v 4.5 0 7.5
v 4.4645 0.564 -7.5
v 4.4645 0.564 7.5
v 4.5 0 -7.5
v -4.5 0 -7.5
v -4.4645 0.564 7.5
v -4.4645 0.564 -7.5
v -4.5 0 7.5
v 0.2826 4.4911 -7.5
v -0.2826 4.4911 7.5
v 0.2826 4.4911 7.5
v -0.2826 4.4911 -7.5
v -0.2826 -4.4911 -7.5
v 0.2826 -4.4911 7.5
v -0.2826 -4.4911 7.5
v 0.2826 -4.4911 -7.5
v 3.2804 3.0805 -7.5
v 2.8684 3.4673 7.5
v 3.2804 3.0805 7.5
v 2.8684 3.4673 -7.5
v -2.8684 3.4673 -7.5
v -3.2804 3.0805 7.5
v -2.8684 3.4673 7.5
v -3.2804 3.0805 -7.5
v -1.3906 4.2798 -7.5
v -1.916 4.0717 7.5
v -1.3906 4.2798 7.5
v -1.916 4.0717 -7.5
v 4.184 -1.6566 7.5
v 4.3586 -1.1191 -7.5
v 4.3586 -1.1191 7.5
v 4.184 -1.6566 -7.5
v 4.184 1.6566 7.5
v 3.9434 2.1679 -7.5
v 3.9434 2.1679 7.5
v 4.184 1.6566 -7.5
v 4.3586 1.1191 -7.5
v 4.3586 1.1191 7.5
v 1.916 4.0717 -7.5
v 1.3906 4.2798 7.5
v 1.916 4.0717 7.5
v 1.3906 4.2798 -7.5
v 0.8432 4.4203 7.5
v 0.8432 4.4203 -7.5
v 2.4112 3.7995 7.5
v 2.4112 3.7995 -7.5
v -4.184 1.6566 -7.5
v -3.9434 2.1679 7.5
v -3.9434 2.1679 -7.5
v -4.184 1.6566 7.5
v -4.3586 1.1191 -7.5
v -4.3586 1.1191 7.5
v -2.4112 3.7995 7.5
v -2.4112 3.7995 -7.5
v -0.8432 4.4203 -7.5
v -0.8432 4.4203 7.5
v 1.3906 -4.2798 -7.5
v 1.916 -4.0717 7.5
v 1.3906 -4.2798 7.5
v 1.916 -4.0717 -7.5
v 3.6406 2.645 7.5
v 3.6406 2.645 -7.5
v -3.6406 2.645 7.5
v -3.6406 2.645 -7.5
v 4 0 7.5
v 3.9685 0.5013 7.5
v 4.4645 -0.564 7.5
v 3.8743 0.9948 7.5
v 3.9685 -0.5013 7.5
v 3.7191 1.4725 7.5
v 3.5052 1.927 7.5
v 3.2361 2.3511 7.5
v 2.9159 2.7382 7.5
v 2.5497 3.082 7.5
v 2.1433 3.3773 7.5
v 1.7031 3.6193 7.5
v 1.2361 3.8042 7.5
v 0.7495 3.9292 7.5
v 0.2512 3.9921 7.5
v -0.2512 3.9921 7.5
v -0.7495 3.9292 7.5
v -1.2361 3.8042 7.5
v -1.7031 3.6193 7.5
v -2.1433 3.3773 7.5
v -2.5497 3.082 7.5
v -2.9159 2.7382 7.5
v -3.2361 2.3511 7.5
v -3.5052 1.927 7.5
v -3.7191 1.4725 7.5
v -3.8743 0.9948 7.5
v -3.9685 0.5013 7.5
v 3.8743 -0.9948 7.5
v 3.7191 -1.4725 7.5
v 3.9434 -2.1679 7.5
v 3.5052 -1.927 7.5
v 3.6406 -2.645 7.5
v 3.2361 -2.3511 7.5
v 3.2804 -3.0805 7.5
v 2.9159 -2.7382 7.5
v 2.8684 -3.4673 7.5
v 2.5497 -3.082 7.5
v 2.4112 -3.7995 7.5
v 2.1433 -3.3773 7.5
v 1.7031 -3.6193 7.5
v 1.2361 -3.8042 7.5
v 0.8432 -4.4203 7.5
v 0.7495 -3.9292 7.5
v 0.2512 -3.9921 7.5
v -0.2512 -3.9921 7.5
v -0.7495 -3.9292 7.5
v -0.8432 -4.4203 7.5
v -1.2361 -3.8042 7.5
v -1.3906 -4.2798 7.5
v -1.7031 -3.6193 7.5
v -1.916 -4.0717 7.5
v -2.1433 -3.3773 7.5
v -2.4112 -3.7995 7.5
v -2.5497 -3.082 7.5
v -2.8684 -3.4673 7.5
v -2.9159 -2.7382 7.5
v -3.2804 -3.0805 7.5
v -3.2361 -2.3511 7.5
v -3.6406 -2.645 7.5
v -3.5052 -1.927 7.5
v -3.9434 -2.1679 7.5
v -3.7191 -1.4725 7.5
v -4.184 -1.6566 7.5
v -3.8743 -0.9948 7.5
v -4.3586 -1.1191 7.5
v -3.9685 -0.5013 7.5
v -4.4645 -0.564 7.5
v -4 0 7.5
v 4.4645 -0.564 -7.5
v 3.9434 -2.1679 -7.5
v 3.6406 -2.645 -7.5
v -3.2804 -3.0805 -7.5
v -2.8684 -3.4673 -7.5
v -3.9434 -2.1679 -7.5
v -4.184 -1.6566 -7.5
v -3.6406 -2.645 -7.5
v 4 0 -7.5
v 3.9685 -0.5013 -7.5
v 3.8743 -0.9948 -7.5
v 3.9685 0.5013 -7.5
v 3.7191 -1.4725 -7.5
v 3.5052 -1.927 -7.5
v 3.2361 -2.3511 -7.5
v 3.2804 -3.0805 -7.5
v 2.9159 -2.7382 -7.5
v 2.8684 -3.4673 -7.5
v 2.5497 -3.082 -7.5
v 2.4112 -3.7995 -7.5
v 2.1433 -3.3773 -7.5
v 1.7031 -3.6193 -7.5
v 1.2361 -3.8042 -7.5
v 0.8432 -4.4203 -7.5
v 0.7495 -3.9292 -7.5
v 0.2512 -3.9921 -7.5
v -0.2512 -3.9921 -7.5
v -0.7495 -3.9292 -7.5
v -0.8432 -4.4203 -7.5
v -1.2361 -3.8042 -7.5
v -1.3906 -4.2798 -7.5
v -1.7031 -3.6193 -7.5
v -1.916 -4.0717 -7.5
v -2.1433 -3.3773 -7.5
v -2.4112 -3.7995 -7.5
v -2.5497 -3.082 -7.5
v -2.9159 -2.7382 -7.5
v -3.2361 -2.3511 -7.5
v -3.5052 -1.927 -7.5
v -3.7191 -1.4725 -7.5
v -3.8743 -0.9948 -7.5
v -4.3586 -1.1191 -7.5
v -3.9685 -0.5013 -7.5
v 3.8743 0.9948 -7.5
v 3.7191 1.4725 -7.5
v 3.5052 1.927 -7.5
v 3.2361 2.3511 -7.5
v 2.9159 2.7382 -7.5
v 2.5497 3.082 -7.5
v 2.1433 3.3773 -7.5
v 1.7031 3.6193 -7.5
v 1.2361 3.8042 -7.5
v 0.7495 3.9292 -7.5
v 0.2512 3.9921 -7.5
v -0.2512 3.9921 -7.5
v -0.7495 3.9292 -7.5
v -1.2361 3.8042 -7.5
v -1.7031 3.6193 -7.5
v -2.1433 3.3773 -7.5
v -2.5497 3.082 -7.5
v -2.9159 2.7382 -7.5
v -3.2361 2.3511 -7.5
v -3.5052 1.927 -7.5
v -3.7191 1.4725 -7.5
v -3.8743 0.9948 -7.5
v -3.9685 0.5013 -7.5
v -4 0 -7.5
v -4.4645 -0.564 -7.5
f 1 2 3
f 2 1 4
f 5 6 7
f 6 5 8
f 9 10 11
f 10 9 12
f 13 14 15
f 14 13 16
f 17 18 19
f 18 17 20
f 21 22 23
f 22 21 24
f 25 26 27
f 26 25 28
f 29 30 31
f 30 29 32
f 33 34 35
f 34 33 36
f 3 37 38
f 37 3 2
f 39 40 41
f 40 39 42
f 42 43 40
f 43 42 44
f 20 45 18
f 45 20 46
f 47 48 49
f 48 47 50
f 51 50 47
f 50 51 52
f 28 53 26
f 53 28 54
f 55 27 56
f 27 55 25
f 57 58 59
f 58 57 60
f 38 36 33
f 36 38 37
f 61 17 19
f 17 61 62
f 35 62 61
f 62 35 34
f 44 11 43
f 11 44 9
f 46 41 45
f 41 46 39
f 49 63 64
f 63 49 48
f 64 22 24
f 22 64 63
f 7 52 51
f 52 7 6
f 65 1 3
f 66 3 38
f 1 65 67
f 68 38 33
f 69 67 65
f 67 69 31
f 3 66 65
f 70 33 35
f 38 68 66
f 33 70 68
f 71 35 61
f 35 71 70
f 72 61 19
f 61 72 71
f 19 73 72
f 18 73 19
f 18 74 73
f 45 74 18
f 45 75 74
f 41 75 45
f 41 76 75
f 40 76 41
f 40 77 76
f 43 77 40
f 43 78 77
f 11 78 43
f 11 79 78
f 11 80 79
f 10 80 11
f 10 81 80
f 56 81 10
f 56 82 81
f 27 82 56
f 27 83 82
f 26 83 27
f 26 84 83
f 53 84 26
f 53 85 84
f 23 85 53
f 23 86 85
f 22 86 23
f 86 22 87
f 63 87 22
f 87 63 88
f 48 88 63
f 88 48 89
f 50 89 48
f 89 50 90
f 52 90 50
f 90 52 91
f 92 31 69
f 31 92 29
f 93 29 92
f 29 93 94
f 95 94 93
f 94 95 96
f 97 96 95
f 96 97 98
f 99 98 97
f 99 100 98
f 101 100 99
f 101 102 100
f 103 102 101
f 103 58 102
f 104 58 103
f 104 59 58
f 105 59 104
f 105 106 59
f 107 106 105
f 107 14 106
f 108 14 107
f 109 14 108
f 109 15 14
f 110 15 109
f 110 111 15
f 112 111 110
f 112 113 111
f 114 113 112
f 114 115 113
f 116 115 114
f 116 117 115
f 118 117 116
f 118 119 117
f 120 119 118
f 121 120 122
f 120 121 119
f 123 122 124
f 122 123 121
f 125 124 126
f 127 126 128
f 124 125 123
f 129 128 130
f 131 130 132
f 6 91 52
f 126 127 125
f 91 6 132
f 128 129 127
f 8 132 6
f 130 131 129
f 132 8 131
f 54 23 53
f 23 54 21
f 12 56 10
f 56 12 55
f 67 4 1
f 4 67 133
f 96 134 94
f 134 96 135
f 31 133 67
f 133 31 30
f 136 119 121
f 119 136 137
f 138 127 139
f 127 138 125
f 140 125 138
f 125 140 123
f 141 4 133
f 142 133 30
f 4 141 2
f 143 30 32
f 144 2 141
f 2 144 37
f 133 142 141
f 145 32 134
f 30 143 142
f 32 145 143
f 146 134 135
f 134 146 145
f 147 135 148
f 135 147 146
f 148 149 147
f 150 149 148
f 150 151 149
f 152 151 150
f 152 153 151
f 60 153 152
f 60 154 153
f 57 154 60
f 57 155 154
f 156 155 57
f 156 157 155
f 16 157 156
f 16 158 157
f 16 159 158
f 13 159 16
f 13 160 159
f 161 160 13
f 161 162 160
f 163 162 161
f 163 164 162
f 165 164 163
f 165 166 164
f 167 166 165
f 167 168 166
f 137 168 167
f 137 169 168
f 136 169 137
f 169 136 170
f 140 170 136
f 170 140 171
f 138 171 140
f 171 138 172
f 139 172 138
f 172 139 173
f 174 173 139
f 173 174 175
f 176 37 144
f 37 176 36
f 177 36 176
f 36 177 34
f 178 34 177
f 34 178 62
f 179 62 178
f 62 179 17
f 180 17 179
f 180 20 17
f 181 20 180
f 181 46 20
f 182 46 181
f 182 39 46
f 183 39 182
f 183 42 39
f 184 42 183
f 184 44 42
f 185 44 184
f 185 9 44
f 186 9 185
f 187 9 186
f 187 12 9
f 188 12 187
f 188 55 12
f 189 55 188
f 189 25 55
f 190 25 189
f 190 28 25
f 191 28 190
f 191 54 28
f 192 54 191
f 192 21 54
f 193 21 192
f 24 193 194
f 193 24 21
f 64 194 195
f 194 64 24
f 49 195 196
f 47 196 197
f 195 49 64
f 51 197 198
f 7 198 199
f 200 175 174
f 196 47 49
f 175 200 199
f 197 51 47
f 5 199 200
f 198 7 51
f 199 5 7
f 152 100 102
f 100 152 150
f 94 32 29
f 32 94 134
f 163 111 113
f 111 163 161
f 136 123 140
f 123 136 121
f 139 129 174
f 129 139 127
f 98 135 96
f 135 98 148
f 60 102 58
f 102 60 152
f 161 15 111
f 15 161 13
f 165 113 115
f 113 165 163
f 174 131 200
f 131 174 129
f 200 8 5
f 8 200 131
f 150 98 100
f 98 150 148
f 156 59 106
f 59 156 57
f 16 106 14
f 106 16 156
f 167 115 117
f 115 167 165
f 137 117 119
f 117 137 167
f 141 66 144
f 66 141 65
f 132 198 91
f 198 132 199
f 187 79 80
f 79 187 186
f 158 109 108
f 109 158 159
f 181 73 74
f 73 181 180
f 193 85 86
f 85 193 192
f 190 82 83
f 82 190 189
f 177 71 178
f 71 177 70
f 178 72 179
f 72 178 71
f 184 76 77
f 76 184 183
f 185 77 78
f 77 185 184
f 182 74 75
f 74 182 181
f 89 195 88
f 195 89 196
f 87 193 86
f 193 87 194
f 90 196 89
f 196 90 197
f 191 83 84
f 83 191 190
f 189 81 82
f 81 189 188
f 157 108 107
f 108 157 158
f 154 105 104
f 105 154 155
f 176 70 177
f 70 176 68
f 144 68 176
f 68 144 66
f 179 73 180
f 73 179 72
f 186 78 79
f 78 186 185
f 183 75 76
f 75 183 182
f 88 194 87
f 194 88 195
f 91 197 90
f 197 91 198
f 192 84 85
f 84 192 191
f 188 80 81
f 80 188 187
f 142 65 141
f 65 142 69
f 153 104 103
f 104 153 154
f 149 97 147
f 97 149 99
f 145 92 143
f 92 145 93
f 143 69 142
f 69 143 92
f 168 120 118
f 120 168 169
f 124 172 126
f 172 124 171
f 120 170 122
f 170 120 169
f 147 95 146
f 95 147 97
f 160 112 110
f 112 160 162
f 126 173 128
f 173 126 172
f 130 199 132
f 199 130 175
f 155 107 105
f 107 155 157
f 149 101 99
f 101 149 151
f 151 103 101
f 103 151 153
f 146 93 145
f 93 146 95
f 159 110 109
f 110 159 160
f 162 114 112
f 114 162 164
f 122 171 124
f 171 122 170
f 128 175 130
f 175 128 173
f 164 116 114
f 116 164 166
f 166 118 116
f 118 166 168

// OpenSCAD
$fn = 50;


difference() {
	union() {
		translate(v = [0, 0, -7.5000000000]) {
			cylinder(h = 15, r = 4.5000000000);
		}
	}
	union() {
		translate(v = [0, 0, -100.0000000000]) {
			cylinder(h = 200, r = 4);
		}
	}
}
